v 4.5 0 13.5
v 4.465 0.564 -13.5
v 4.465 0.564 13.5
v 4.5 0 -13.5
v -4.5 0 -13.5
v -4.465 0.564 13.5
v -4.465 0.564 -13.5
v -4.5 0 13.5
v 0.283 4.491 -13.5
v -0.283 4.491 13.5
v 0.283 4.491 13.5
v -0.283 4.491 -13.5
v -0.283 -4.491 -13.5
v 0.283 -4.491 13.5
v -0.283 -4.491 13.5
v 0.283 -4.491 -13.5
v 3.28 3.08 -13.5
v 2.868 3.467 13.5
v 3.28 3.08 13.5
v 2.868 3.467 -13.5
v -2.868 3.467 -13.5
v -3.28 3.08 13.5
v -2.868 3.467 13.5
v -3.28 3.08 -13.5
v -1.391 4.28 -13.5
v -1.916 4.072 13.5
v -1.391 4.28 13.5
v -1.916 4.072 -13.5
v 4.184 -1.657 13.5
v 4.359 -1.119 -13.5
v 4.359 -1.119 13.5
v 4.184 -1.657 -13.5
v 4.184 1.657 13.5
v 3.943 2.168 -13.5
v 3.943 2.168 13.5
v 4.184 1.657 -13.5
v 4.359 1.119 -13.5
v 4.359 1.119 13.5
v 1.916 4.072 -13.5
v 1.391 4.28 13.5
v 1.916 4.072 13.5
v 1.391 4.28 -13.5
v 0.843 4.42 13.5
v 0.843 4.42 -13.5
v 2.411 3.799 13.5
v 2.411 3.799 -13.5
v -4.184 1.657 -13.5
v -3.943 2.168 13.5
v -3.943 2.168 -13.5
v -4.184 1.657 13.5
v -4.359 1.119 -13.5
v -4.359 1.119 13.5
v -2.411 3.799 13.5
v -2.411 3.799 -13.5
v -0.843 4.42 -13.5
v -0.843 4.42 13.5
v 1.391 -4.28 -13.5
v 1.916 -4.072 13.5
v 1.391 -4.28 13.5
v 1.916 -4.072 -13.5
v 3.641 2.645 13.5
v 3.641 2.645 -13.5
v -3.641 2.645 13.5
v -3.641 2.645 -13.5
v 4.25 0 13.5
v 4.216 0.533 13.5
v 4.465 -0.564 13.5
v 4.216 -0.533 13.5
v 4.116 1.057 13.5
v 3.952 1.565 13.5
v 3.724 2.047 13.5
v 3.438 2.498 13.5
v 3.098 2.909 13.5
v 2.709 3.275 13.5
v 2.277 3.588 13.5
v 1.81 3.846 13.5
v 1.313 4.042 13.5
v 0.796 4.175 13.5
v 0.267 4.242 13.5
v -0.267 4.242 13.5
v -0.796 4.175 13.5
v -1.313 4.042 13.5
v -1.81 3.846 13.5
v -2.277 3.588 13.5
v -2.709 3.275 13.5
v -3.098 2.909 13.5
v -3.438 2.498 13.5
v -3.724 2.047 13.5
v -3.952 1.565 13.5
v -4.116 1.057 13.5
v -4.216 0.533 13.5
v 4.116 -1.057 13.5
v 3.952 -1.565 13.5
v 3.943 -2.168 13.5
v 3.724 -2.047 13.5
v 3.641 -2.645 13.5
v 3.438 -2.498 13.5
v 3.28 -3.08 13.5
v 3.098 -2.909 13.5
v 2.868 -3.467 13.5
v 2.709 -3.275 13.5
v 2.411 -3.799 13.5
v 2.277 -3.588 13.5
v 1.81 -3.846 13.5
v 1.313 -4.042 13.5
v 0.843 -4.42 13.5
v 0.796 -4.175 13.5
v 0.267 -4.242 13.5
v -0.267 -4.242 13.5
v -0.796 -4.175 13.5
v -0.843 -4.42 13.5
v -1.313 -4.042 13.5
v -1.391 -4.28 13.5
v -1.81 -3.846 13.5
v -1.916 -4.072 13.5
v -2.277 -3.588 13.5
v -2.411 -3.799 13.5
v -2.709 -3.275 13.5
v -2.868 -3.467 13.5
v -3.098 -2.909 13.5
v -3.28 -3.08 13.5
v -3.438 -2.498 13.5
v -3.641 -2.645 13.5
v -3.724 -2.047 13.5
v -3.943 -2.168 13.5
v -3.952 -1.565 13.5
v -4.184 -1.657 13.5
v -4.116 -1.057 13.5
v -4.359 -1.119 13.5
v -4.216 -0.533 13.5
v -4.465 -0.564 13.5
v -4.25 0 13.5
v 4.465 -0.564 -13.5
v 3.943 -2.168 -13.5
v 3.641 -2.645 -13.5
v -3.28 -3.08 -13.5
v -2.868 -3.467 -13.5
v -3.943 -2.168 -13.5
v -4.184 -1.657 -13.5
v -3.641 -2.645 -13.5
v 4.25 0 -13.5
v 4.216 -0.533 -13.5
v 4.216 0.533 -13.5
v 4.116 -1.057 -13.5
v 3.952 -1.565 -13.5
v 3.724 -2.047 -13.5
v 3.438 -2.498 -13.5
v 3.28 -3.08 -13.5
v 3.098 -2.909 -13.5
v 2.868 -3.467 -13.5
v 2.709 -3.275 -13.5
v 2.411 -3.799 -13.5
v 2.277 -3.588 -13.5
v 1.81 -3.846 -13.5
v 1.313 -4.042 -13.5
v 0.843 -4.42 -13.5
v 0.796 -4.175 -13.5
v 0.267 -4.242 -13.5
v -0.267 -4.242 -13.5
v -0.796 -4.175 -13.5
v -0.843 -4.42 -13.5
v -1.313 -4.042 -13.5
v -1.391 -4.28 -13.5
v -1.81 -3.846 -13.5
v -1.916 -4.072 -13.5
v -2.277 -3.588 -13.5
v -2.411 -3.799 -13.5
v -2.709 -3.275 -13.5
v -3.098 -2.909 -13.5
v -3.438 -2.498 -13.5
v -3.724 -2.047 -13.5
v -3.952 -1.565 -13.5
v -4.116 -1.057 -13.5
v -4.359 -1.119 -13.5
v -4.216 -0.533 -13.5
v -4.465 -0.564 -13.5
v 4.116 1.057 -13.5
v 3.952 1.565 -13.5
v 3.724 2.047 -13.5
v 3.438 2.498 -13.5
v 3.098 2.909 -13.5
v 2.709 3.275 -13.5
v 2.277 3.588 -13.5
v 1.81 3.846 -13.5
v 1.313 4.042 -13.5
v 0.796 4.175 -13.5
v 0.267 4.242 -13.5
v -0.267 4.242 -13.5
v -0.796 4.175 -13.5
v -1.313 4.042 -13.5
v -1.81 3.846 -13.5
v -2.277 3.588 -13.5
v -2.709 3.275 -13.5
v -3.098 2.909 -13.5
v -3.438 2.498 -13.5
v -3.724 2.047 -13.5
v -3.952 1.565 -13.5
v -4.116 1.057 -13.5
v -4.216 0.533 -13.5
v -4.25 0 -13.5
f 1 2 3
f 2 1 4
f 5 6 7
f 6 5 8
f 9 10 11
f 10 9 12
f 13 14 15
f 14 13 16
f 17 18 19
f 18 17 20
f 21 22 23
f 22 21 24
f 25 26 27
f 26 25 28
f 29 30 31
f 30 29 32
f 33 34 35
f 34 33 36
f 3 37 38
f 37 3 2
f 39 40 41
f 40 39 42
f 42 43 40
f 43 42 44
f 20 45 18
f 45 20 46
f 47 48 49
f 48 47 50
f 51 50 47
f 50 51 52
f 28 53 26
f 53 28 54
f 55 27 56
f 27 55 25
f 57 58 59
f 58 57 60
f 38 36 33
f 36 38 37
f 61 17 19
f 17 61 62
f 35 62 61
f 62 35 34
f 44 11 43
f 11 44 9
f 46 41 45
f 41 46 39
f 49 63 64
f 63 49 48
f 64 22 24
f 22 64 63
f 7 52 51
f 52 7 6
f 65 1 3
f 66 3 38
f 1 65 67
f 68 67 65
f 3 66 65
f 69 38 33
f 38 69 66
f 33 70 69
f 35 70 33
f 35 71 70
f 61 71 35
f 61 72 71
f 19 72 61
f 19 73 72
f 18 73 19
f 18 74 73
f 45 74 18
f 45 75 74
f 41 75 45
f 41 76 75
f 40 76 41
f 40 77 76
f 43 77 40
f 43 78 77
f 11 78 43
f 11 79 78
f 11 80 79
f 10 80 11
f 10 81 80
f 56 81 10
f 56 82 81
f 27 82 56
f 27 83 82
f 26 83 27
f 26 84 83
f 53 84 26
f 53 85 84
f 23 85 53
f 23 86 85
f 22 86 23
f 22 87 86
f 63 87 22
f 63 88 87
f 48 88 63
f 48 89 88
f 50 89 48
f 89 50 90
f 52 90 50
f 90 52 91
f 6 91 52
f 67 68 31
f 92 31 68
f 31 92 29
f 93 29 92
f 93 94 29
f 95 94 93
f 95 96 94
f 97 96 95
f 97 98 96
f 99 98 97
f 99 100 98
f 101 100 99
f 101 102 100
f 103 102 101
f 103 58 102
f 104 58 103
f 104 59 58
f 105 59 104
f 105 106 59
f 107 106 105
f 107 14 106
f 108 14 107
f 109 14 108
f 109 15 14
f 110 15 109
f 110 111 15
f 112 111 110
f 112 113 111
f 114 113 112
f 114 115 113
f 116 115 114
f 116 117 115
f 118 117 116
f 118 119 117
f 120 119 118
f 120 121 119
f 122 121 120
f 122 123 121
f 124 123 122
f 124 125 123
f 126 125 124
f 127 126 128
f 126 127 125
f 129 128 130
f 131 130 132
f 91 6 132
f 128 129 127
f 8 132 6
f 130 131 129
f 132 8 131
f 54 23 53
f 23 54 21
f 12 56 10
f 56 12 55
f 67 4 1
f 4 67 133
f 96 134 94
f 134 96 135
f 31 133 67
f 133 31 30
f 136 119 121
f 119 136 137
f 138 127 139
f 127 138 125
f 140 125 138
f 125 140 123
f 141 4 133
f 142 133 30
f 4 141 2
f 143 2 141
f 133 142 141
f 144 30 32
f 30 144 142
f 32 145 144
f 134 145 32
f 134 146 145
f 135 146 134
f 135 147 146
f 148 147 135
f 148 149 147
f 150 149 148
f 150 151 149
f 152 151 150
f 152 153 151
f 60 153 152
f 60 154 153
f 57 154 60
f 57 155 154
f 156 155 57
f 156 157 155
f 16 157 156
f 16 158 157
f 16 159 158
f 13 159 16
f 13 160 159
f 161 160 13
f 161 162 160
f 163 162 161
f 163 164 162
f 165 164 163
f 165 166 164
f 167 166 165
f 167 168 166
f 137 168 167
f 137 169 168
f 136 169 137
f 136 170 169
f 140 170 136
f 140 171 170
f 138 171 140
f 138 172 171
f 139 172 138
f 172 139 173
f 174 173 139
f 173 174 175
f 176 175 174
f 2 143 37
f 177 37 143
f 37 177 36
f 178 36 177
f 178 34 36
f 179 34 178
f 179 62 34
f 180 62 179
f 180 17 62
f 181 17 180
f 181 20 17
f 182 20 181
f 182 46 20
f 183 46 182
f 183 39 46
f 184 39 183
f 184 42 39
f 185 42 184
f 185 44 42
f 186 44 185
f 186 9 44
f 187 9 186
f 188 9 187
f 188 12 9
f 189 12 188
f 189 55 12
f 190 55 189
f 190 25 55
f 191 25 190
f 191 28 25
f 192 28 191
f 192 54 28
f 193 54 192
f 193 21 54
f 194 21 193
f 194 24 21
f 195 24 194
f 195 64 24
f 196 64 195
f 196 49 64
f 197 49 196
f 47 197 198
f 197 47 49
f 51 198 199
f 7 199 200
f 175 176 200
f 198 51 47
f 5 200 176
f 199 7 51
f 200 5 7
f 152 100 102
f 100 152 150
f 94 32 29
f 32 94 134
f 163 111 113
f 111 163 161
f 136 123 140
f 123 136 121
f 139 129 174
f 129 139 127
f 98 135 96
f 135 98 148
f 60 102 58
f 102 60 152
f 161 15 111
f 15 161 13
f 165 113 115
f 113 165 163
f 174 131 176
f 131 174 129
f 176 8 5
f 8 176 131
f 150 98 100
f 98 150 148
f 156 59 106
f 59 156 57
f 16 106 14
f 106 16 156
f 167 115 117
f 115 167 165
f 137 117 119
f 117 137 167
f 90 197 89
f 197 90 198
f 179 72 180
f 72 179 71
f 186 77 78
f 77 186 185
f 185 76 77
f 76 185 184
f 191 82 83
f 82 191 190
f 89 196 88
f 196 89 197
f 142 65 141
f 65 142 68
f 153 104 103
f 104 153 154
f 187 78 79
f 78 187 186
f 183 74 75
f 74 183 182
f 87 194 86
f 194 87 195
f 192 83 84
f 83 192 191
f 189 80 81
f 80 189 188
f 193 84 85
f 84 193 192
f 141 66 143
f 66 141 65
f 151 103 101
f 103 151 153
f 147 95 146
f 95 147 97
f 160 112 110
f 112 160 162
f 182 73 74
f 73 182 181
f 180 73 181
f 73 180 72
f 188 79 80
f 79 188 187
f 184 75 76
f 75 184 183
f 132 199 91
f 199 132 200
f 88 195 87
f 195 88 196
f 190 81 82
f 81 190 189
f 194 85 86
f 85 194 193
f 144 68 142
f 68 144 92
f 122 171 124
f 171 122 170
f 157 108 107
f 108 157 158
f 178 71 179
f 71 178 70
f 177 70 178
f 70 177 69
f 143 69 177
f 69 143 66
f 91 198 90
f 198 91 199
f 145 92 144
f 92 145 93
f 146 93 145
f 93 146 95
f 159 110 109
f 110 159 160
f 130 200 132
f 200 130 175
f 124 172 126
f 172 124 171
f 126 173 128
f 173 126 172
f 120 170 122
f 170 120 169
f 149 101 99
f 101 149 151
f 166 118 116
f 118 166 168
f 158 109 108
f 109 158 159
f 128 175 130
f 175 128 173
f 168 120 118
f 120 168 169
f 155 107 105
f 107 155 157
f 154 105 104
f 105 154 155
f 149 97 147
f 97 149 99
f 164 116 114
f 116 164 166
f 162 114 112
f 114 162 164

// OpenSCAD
$fn = 50;


difference() {
	union() {
		translate(v = [0, 0, -13.5000000000]) {
			cylinder(h = 27, r = 4.5000000000);
		}
	}
	union() {
		translate(v = [0, 0, -100.0000000000]) {
			cylinder(h = 200, r = 4.2500000000);
		}
	}
}
